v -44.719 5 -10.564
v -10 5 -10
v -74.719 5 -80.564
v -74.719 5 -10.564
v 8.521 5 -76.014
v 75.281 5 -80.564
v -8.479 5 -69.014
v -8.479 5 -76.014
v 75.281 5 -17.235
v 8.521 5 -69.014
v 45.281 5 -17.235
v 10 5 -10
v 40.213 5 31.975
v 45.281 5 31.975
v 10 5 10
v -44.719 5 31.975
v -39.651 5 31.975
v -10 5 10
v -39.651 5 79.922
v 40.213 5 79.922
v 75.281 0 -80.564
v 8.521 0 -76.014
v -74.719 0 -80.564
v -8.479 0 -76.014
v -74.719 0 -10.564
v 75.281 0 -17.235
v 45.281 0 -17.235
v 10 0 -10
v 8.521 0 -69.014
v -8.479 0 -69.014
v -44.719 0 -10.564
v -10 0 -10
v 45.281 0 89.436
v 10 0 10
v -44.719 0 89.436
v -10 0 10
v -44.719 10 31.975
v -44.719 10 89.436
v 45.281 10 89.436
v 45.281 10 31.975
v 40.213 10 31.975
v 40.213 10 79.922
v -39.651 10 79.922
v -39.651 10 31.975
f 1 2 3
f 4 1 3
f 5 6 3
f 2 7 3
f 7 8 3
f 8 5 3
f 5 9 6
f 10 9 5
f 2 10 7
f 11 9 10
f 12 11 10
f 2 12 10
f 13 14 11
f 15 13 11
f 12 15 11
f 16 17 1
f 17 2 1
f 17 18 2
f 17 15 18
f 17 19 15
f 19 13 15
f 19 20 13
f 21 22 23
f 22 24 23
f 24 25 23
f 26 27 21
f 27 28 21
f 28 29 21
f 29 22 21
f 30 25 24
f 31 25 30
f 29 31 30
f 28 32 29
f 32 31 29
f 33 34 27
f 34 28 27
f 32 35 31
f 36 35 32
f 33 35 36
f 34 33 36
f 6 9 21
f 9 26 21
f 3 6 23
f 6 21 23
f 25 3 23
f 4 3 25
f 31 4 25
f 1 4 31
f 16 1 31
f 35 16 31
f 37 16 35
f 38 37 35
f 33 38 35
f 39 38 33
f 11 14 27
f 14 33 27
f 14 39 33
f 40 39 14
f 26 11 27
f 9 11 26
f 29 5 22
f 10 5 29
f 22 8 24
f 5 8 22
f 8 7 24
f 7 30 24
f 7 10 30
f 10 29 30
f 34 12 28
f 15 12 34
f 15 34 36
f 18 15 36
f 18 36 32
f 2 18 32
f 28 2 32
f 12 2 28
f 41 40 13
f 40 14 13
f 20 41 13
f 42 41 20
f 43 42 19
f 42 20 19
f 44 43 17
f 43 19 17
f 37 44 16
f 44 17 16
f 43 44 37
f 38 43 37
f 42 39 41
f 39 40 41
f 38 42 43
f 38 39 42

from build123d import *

# Parameters (mm, degrees)
SKETCH2_W           = 17
SKETCH2_H           = 7
BOSS_EXTRUDE1_DEPTH = 5
SKETCH3_W           = 20
SKETCH3_H           = 20
CUT_EXTRUDE1_DEPTH  = 5
BOSS_EXTRUDE2_DEPTH = 5


with BuildPart() as part:
    # Sketch2 → Boss-Extrude1 (new body)
    with BuildSketch(Plane(origin=(0, 0, 0), x_dir=(1, 0, 0), z_dir=(0, 1, 0))):
        Polygon((-44.718981883, -89.435737216), (45.281018117, -89.435737216), (45.281018117, 17.235484445), (75.281018117, 17.235484445), (75.281018117, 80.564262784), (-74.718981883, 80.564262784), (-74.718981883, 10.564262784), (-44.718981883, 10.564262784), align=None)
        with Locations((0.021018117, 72.514262784)):
            Rectangle(SKETCH2_W, SKETCH2_H, mode=Mode.SUBTRACT)
    extrude(amount=BOSS_EXTRUDE1_DEPTH)

    # Sketch3 → Cut-Extrude1 (cut)
    with BuildSketch(Plane(origin=(0, 5, 0), x_dir=(1, 0, 0), z_dir=(0, 1, 0))):
        Rectangle(SKETCH3_W, SKETCH3_H)
    extrude(amount=-CUT_EXTRUDE1_DEPTH, mode=Mode.SUBTRACT)

    # Sketch5 → Boss-Extrude2 (add)
    with BuildSketch(Plane(origin=(0, 5, 0), x_dir=(1, 0, 0), z_dir=(0, 1, 0))):
        Polygon((-39.650543722, -79.921839448), (40.212579957, -79.921839448), (40.212579957, -31.975199113), (45.281018117, -31.975199113), (45.281018117, -79.921839448), (45.281018117, -89.435737216), (-44.718981883, -89.435737216), (-44.718981883, -79.921839448), (-44.718981883, -31.975199113), (-39.650543722, -31.975199113), align=None)
    extrude(amount=BOSS_EXTRUDE2_DEPTH)


solid = part.part
